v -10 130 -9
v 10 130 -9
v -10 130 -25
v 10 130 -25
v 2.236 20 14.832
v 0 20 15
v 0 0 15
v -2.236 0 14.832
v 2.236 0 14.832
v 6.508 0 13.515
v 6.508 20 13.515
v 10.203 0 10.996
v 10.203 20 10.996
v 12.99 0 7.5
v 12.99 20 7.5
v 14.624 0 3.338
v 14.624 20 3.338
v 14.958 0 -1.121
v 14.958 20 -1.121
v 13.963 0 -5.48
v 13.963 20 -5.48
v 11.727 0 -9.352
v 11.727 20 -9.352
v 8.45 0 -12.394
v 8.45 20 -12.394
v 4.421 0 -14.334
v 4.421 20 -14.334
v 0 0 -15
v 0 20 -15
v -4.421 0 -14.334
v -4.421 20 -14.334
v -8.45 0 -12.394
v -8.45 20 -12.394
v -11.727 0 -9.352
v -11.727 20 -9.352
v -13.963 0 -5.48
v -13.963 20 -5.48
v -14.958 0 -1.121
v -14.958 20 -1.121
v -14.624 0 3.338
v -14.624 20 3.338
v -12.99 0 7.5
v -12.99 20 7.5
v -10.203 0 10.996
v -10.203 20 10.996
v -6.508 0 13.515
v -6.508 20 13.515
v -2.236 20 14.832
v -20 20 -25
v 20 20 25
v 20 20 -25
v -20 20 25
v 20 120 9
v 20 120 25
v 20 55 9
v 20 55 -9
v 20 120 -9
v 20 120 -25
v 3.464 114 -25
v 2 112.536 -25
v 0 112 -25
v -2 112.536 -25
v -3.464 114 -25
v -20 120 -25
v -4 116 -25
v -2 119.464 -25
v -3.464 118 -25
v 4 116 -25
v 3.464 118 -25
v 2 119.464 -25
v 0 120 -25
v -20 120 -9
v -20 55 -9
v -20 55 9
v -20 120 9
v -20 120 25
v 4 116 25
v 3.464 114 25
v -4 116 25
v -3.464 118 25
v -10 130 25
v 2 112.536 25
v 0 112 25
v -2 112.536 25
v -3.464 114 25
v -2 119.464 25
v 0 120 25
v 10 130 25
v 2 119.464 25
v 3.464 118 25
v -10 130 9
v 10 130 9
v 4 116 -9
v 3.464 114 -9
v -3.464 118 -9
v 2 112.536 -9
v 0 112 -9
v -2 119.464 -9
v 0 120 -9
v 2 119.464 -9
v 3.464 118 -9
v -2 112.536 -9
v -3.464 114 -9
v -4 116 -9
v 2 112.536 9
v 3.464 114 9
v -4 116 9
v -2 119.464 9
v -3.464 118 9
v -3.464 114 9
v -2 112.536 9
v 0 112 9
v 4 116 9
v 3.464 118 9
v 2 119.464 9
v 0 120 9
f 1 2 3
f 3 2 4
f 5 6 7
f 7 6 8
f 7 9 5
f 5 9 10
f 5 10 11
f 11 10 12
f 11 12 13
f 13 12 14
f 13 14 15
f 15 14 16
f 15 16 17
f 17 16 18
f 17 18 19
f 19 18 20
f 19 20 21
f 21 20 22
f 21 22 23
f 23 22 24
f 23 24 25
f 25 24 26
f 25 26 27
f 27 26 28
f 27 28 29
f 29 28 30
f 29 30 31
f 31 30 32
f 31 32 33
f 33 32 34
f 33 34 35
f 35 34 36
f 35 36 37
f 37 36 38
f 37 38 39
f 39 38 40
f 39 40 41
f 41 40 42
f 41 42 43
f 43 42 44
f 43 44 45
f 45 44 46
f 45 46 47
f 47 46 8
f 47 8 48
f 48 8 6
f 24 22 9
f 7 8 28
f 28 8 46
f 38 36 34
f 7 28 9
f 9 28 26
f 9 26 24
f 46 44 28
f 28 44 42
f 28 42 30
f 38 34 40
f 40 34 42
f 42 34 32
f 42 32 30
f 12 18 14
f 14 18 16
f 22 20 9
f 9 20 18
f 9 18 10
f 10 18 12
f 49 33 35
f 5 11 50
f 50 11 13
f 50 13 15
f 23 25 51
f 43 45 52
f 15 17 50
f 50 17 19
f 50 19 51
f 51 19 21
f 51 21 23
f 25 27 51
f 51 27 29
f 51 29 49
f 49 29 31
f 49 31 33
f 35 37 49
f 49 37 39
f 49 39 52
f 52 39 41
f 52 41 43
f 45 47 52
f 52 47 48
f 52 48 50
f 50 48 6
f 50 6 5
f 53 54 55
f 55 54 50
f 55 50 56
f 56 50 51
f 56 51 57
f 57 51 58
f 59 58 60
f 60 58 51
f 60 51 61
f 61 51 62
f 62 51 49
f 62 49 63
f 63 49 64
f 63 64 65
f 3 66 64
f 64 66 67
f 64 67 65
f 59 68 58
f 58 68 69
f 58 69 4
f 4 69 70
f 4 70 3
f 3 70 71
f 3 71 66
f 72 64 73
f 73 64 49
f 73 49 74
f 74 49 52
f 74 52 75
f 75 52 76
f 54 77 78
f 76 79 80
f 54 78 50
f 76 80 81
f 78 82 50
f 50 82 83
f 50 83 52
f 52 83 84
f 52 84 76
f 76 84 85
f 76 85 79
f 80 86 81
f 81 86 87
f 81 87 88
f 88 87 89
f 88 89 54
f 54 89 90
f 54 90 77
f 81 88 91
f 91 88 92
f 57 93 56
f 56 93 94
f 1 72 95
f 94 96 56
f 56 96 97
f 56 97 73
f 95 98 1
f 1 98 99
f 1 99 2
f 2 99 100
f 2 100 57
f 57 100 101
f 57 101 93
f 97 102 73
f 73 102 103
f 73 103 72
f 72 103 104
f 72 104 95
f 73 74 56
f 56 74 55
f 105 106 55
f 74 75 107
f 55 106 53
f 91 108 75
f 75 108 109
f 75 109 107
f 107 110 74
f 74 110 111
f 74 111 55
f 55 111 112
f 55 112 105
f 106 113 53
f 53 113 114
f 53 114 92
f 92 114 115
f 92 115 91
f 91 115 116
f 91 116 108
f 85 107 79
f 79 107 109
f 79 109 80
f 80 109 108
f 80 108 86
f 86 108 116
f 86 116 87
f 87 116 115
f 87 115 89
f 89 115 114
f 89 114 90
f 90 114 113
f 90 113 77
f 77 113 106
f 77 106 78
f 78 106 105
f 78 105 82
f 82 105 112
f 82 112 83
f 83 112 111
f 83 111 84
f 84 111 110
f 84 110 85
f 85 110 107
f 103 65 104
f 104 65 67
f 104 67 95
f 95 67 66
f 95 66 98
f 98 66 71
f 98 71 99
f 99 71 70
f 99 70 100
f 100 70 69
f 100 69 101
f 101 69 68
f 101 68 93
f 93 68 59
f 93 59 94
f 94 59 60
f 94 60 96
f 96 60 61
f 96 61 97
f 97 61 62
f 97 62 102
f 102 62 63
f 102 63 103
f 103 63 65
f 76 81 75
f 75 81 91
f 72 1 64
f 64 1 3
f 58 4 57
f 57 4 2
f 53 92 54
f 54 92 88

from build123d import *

# Parameters (mm, degrees)
SKETCH1_R           = 15
BOSS_EXTRUDE1_DEPTH = 20
SKETCH2_W           = 40
SKETCH2_H           = 50
BOSS_EXTRUDE2_DEPTH = 110
SKETCH3_W           = 18
SKETCH3_H           = 150
CUT_EXTRUDE1_DEPTH  = 139.293166859
SKETCH4_R           = 4
CUT_EXTRUDE2_DEPTH  = 141.712472795
CHAMFER1_SIZE       = 10


with BuildPart() as part:
    # Sketch1 → Boss-Extrude1 (new body)
    with BuildSketch(Plane(origin=(0, 0, 0), x_dir=(1, 0, 0), z_dir=(0, 1, 0))):
        with Locations(Location((0, 0, 0), (0, 0, 270))):
            Circle(SKETCH1_R)
    extrude(amount=BOSS_EXTRUDE1_DEPTH)

    # Sketch2 → Boss-Extrude2 (add)
    with BuildSketch(Plane(origin=(0, 20, 0), x_dir=(1, 0, 0), z_dir=(0, 1, 0))):
        Rectangle(SKETCH2_W, SKETCH2_H)
    extrude(amount=BOSS_EXTRUDE2_DEPTH)

    # Sketch3 → Cut-Extrude1 (cut, through all)
    with BuildSketch(Plane(origin=(20, 0, 0), x_dir=(0, 0, -1), z_dir=(1, 0, 0))):
        with Locations((0, 130)):
            Rectangle(SKETCH3_W, SKETCH3_H)
    extrude(amount=-CUT_EXTRUDE1_DEPTH, mode=Mode.SUBTRACT)

    # Sketch4 → Cut-Extrude2 (cut, through all)
    with BuildSketch(Plane(origin=(0, 0, -25), x_dir=(-1, 0, 0), z_dir=(0, 0, -1))):
        with Locations((0, 116)):
            Circle(SKETCH4_R)
    extrude(amount=-CUT_EXTRUDE2_DEPTH, mode=Mode.SUBTRACT)

    # Chamfer1
    chamfer1_edges = [part.edges().sort_by_distance(p)[0] for p in [
        (20, 130, -17),
        (-20, 130, 17),
        (20, 130, 17),
        (-20, 130, -17),
    ]]
    chamfer(chamfer1_edges, length=CHAMFER1_SIZE)


solid = part.part
